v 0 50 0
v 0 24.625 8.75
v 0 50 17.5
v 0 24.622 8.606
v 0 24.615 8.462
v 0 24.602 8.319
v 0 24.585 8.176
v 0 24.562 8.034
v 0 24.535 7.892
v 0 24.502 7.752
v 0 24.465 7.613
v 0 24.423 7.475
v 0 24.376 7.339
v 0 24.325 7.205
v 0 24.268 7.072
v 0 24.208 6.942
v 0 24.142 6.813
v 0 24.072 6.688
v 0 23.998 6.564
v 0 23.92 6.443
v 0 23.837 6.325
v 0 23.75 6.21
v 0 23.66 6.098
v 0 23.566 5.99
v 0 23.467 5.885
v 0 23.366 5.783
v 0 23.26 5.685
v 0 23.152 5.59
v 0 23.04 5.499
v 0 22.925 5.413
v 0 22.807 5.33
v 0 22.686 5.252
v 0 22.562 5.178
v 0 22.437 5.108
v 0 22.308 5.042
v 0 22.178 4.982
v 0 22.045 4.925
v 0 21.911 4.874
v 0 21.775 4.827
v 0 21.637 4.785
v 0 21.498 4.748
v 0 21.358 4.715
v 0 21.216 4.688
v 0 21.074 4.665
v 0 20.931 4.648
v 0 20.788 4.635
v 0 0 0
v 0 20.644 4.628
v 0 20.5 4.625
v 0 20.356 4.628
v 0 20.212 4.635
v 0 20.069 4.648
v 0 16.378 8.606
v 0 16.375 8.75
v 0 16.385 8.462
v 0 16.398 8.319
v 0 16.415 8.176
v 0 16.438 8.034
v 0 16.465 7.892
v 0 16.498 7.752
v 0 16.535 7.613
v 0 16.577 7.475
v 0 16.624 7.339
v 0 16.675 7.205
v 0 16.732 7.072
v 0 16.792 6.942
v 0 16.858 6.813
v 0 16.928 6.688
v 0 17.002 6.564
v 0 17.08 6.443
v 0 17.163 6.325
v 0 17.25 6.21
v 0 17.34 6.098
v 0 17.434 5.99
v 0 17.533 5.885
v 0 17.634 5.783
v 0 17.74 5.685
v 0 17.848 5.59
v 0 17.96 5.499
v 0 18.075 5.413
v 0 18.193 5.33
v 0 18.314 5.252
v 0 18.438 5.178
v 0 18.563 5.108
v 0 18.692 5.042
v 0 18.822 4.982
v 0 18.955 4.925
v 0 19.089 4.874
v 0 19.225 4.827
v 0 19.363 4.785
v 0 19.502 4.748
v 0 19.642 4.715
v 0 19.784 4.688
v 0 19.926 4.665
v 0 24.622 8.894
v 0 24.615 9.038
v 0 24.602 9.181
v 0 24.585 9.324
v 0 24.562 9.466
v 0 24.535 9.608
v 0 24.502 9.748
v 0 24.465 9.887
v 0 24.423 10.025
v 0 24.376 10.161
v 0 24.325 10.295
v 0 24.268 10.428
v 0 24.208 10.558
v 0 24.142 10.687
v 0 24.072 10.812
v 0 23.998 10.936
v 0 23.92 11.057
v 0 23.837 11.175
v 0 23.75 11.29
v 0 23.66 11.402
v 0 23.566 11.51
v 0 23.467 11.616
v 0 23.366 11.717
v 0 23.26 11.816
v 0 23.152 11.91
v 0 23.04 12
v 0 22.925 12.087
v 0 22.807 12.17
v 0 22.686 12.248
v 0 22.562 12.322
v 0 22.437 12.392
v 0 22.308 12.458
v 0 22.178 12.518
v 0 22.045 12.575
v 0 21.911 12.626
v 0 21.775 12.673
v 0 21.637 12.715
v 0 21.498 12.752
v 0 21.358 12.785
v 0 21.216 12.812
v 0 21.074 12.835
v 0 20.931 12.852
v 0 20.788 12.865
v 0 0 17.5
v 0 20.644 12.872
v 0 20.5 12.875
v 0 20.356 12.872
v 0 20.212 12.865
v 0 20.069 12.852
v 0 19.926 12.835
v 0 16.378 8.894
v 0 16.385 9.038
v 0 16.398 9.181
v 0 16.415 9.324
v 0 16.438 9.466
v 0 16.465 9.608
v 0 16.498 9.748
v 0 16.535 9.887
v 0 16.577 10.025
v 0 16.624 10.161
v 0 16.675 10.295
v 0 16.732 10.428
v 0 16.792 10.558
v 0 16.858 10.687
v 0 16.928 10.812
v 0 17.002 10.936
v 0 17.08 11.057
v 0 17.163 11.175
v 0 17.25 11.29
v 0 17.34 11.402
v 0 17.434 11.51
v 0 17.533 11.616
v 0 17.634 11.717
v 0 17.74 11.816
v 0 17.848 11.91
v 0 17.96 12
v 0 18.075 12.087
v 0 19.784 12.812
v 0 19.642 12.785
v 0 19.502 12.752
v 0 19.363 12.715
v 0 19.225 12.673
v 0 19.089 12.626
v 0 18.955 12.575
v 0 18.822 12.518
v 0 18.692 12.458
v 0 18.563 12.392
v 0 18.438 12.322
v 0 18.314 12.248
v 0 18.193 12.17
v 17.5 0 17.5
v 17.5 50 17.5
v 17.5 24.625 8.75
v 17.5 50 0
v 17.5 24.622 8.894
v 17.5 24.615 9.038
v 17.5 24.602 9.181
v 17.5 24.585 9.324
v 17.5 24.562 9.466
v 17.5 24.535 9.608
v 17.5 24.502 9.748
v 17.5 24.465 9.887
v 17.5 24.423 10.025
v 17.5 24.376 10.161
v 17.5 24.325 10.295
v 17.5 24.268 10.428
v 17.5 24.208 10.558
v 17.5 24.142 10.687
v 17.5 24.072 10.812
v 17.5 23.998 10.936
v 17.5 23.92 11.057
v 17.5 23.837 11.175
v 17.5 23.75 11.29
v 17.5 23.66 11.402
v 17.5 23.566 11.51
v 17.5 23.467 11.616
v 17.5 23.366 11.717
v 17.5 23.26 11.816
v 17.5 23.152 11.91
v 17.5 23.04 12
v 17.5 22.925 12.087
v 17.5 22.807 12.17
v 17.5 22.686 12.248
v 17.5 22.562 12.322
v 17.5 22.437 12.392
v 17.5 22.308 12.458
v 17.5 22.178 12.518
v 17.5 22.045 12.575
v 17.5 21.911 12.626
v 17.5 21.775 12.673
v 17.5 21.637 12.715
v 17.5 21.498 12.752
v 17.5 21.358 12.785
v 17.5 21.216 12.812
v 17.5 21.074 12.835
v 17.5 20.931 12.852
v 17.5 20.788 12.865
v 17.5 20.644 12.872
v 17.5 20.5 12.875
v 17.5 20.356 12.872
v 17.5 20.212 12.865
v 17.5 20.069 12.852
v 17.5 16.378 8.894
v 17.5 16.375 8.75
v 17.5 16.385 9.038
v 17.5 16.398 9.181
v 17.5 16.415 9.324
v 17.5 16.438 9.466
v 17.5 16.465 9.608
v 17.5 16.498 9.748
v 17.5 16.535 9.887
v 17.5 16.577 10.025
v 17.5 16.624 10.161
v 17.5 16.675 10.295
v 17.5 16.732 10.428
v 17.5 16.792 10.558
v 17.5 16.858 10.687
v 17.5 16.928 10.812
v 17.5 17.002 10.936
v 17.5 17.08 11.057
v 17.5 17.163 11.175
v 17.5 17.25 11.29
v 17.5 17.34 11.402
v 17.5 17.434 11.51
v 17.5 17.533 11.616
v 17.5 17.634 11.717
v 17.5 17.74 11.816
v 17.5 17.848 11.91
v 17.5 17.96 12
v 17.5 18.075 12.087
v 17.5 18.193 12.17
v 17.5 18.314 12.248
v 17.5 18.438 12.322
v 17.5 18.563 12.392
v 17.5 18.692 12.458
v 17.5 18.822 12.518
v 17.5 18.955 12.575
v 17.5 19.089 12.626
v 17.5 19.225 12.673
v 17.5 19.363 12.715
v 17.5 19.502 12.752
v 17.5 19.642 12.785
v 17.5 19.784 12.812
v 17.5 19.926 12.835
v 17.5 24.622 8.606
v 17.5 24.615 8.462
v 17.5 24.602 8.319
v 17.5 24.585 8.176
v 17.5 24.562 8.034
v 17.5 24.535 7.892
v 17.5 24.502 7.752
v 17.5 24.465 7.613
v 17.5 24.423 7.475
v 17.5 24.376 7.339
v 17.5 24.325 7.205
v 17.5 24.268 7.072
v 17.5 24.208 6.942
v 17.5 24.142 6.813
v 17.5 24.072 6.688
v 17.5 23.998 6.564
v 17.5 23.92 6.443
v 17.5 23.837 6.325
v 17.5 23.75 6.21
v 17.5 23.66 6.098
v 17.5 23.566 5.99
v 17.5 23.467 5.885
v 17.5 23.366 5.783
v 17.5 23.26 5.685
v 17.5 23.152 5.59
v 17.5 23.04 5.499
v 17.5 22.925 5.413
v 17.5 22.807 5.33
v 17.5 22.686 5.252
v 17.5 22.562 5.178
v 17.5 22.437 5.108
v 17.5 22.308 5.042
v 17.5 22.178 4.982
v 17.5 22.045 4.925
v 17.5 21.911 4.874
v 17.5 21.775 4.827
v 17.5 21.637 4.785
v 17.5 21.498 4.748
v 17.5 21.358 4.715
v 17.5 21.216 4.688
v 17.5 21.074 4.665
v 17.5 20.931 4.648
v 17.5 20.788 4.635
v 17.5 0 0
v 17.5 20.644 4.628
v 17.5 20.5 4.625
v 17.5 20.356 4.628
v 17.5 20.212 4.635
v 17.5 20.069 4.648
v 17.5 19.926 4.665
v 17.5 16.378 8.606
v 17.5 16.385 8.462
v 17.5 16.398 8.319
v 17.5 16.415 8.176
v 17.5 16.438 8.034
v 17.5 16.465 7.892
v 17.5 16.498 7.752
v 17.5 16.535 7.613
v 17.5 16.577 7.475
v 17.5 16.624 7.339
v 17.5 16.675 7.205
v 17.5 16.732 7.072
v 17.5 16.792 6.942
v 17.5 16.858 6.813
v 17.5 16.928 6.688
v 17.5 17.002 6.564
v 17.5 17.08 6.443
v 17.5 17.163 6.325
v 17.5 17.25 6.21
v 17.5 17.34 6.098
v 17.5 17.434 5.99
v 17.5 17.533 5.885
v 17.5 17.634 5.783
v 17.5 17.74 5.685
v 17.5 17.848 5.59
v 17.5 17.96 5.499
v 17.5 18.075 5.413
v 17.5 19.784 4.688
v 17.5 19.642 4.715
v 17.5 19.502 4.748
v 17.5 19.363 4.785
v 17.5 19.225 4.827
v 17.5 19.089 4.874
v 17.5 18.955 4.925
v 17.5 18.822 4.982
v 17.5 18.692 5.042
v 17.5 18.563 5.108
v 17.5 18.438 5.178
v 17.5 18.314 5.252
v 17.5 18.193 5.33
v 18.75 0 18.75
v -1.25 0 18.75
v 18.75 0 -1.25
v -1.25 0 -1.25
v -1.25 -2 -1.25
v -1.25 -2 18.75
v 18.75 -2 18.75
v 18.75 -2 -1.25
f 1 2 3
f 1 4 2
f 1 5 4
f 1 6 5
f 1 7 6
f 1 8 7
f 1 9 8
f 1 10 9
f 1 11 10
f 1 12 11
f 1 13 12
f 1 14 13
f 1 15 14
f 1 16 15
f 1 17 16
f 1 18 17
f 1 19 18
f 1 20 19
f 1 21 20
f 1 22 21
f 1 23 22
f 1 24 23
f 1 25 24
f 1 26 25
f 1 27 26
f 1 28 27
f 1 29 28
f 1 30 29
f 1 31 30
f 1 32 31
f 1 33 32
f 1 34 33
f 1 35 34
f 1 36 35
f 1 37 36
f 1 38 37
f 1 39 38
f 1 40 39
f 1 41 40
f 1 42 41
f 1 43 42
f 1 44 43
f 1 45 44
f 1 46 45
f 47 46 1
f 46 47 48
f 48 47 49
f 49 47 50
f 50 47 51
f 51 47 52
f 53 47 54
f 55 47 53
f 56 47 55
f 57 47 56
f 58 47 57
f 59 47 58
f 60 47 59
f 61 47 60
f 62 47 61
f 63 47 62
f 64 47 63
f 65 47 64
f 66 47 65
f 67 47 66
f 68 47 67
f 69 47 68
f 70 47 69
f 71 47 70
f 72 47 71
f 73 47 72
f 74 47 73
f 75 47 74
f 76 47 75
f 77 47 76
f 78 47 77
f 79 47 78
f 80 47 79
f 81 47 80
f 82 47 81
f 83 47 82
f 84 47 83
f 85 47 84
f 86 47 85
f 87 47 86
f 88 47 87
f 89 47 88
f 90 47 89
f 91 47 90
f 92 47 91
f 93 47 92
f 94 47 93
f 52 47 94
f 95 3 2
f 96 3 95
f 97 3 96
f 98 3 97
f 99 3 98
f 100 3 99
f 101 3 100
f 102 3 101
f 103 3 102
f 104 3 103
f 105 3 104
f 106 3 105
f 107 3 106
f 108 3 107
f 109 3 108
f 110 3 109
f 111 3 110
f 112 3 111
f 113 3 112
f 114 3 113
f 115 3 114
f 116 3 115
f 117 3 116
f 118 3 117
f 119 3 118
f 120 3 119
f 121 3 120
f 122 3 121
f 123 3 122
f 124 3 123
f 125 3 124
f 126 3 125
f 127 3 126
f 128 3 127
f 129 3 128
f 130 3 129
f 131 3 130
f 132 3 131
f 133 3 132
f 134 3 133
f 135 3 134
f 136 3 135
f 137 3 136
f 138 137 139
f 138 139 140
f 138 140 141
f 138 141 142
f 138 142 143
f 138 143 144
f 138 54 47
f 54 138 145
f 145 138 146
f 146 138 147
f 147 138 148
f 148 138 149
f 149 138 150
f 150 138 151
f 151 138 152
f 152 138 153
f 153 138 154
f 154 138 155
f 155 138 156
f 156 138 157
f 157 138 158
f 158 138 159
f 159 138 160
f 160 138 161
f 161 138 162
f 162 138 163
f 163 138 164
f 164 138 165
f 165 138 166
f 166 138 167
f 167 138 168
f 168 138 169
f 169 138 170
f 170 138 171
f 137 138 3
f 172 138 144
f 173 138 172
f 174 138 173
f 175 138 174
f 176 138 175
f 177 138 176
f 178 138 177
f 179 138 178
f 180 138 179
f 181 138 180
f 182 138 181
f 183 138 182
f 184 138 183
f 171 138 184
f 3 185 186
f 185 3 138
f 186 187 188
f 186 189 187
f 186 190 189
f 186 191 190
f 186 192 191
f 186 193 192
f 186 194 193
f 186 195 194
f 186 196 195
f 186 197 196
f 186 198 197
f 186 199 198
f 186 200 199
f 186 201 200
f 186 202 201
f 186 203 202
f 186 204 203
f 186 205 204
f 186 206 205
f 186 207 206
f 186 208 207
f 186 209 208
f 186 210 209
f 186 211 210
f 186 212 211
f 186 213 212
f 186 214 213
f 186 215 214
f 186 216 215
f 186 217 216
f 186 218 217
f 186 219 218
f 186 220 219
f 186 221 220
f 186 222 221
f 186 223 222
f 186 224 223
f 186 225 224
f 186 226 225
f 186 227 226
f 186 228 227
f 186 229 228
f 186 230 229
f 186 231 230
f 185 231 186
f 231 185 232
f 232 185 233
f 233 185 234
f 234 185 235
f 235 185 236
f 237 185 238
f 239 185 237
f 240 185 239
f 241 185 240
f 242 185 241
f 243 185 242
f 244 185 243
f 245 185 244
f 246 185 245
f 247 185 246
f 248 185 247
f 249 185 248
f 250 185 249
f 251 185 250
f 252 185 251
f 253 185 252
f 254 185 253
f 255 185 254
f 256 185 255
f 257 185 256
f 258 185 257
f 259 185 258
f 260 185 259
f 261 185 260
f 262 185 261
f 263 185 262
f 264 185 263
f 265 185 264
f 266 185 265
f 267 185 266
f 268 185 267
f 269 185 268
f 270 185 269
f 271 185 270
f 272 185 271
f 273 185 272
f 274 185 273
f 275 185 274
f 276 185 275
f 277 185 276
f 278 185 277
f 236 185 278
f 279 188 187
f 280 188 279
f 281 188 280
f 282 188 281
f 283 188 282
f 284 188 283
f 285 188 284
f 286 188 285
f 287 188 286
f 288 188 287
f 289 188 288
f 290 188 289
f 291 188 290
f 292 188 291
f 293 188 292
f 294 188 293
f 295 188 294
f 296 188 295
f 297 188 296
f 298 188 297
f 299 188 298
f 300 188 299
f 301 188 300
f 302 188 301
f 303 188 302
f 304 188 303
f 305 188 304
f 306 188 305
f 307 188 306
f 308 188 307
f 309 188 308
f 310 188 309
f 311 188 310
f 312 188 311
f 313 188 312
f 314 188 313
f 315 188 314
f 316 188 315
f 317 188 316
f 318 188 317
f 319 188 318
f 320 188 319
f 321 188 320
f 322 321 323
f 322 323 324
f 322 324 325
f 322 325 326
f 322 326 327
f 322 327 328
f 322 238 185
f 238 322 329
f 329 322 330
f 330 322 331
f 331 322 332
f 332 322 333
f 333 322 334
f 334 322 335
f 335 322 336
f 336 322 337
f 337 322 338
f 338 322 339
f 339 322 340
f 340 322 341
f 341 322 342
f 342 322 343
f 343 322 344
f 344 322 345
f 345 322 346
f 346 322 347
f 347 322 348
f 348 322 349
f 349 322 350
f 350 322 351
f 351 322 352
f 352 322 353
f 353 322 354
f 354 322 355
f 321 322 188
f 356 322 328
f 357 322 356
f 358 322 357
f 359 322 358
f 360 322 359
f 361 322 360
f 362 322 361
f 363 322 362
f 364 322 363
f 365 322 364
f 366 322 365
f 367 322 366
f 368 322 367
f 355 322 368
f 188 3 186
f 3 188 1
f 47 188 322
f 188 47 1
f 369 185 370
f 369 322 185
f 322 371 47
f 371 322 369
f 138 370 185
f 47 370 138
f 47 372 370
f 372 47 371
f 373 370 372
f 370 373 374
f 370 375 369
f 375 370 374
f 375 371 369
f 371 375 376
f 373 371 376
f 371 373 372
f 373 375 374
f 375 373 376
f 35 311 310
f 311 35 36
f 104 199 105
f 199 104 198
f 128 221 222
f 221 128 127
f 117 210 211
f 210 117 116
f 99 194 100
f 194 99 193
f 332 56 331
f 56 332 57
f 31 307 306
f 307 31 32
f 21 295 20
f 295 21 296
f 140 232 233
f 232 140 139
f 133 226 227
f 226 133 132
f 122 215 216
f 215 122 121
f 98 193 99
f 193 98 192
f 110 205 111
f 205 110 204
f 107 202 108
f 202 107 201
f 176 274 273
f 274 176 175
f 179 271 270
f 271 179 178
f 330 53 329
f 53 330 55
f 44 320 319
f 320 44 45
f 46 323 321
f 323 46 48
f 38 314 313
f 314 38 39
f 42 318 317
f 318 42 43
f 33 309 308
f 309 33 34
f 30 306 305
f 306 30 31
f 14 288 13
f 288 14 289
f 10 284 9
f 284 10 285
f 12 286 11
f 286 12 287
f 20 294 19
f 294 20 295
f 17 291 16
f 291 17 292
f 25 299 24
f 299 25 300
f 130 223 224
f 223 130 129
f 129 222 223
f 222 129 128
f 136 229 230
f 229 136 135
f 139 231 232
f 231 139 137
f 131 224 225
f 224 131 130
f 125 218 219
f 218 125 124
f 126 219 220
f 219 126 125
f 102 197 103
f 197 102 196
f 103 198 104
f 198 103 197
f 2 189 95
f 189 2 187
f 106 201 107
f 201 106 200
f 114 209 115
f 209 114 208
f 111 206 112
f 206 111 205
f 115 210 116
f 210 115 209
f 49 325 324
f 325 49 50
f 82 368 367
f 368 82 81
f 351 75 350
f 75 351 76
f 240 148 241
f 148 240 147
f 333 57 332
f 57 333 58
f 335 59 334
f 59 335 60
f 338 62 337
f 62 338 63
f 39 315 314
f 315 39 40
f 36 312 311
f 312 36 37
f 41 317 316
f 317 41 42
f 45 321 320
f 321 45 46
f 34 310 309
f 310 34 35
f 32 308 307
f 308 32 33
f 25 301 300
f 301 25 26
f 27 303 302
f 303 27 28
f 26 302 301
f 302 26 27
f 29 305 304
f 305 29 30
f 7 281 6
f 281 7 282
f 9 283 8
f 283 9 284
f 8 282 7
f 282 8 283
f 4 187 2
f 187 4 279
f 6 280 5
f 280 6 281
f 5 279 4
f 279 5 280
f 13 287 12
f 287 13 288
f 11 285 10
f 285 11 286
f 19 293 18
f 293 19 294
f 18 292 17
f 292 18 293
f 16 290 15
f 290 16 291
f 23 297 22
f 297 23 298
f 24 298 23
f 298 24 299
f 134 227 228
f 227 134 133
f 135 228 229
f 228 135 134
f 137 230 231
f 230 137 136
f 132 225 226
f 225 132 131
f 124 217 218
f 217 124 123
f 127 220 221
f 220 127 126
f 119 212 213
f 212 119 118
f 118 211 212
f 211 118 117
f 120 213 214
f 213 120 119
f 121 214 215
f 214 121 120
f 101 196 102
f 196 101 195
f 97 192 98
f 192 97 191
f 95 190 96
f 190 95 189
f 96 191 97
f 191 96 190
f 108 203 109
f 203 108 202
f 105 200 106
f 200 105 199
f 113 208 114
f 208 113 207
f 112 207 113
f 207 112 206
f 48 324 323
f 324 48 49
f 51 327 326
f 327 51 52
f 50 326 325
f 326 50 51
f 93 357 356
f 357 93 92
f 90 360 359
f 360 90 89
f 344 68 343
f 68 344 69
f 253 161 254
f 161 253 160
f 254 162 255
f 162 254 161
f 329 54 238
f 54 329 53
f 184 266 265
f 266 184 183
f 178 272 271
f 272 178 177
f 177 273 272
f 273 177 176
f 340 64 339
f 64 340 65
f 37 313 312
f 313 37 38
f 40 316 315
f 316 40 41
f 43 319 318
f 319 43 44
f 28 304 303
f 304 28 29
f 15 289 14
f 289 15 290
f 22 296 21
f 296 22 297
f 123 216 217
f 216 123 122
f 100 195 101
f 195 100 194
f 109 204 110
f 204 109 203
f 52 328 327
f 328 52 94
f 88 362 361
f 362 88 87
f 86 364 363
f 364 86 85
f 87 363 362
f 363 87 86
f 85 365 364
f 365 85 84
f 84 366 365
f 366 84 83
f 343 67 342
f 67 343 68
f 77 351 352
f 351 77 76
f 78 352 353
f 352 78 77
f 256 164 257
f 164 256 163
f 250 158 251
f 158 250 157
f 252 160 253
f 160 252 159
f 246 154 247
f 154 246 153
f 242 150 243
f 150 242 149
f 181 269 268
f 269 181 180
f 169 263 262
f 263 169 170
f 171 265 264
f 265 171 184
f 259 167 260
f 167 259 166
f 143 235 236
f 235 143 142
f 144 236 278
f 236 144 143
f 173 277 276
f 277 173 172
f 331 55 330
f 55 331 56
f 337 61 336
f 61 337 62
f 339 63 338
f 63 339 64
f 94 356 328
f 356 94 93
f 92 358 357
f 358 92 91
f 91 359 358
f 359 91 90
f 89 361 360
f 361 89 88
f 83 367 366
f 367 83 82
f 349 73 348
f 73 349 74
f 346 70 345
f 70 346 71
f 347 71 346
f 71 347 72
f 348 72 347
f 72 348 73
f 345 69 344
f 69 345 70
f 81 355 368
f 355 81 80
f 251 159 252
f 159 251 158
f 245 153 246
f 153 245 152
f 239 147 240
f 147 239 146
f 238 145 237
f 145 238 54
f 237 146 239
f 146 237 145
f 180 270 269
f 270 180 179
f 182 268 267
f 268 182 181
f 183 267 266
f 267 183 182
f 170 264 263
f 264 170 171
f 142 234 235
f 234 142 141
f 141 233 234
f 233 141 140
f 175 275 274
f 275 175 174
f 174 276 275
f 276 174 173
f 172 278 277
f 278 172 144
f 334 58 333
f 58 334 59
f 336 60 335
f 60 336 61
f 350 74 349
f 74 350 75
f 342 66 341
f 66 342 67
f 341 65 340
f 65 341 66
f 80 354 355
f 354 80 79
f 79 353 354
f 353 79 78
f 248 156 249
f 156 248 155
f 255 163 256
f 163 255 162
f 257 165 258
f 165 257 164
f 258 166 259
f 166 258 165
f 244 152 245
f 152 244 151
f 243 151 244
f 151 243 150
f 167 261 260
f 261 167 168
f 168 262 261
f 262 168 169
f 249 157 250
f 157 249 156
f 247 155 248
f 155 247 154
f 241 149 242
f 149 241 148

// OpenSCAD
//cube([120,120,3], center = true);
//translate([-45,-45,0])cylinder(h = 3, r=15, $fn = 180, center = true);
//rotate_extrude(convexity = 10, $fn = A) translate([20+1.5, 0, 0])circle(d = 3, $fn = B);
//module Test(){




difference(){
union(){    
cube([17.5,50,17.5], center = false);
    
translate([-2.5/2,-2,-2.5/2])cube([20,2,20], center = false);    
}
translate([0,20.5,17.5/2])rotate([0,90,0])cylinder(h = 20, d=8.25, $fn = 180, center = false);

}
 
